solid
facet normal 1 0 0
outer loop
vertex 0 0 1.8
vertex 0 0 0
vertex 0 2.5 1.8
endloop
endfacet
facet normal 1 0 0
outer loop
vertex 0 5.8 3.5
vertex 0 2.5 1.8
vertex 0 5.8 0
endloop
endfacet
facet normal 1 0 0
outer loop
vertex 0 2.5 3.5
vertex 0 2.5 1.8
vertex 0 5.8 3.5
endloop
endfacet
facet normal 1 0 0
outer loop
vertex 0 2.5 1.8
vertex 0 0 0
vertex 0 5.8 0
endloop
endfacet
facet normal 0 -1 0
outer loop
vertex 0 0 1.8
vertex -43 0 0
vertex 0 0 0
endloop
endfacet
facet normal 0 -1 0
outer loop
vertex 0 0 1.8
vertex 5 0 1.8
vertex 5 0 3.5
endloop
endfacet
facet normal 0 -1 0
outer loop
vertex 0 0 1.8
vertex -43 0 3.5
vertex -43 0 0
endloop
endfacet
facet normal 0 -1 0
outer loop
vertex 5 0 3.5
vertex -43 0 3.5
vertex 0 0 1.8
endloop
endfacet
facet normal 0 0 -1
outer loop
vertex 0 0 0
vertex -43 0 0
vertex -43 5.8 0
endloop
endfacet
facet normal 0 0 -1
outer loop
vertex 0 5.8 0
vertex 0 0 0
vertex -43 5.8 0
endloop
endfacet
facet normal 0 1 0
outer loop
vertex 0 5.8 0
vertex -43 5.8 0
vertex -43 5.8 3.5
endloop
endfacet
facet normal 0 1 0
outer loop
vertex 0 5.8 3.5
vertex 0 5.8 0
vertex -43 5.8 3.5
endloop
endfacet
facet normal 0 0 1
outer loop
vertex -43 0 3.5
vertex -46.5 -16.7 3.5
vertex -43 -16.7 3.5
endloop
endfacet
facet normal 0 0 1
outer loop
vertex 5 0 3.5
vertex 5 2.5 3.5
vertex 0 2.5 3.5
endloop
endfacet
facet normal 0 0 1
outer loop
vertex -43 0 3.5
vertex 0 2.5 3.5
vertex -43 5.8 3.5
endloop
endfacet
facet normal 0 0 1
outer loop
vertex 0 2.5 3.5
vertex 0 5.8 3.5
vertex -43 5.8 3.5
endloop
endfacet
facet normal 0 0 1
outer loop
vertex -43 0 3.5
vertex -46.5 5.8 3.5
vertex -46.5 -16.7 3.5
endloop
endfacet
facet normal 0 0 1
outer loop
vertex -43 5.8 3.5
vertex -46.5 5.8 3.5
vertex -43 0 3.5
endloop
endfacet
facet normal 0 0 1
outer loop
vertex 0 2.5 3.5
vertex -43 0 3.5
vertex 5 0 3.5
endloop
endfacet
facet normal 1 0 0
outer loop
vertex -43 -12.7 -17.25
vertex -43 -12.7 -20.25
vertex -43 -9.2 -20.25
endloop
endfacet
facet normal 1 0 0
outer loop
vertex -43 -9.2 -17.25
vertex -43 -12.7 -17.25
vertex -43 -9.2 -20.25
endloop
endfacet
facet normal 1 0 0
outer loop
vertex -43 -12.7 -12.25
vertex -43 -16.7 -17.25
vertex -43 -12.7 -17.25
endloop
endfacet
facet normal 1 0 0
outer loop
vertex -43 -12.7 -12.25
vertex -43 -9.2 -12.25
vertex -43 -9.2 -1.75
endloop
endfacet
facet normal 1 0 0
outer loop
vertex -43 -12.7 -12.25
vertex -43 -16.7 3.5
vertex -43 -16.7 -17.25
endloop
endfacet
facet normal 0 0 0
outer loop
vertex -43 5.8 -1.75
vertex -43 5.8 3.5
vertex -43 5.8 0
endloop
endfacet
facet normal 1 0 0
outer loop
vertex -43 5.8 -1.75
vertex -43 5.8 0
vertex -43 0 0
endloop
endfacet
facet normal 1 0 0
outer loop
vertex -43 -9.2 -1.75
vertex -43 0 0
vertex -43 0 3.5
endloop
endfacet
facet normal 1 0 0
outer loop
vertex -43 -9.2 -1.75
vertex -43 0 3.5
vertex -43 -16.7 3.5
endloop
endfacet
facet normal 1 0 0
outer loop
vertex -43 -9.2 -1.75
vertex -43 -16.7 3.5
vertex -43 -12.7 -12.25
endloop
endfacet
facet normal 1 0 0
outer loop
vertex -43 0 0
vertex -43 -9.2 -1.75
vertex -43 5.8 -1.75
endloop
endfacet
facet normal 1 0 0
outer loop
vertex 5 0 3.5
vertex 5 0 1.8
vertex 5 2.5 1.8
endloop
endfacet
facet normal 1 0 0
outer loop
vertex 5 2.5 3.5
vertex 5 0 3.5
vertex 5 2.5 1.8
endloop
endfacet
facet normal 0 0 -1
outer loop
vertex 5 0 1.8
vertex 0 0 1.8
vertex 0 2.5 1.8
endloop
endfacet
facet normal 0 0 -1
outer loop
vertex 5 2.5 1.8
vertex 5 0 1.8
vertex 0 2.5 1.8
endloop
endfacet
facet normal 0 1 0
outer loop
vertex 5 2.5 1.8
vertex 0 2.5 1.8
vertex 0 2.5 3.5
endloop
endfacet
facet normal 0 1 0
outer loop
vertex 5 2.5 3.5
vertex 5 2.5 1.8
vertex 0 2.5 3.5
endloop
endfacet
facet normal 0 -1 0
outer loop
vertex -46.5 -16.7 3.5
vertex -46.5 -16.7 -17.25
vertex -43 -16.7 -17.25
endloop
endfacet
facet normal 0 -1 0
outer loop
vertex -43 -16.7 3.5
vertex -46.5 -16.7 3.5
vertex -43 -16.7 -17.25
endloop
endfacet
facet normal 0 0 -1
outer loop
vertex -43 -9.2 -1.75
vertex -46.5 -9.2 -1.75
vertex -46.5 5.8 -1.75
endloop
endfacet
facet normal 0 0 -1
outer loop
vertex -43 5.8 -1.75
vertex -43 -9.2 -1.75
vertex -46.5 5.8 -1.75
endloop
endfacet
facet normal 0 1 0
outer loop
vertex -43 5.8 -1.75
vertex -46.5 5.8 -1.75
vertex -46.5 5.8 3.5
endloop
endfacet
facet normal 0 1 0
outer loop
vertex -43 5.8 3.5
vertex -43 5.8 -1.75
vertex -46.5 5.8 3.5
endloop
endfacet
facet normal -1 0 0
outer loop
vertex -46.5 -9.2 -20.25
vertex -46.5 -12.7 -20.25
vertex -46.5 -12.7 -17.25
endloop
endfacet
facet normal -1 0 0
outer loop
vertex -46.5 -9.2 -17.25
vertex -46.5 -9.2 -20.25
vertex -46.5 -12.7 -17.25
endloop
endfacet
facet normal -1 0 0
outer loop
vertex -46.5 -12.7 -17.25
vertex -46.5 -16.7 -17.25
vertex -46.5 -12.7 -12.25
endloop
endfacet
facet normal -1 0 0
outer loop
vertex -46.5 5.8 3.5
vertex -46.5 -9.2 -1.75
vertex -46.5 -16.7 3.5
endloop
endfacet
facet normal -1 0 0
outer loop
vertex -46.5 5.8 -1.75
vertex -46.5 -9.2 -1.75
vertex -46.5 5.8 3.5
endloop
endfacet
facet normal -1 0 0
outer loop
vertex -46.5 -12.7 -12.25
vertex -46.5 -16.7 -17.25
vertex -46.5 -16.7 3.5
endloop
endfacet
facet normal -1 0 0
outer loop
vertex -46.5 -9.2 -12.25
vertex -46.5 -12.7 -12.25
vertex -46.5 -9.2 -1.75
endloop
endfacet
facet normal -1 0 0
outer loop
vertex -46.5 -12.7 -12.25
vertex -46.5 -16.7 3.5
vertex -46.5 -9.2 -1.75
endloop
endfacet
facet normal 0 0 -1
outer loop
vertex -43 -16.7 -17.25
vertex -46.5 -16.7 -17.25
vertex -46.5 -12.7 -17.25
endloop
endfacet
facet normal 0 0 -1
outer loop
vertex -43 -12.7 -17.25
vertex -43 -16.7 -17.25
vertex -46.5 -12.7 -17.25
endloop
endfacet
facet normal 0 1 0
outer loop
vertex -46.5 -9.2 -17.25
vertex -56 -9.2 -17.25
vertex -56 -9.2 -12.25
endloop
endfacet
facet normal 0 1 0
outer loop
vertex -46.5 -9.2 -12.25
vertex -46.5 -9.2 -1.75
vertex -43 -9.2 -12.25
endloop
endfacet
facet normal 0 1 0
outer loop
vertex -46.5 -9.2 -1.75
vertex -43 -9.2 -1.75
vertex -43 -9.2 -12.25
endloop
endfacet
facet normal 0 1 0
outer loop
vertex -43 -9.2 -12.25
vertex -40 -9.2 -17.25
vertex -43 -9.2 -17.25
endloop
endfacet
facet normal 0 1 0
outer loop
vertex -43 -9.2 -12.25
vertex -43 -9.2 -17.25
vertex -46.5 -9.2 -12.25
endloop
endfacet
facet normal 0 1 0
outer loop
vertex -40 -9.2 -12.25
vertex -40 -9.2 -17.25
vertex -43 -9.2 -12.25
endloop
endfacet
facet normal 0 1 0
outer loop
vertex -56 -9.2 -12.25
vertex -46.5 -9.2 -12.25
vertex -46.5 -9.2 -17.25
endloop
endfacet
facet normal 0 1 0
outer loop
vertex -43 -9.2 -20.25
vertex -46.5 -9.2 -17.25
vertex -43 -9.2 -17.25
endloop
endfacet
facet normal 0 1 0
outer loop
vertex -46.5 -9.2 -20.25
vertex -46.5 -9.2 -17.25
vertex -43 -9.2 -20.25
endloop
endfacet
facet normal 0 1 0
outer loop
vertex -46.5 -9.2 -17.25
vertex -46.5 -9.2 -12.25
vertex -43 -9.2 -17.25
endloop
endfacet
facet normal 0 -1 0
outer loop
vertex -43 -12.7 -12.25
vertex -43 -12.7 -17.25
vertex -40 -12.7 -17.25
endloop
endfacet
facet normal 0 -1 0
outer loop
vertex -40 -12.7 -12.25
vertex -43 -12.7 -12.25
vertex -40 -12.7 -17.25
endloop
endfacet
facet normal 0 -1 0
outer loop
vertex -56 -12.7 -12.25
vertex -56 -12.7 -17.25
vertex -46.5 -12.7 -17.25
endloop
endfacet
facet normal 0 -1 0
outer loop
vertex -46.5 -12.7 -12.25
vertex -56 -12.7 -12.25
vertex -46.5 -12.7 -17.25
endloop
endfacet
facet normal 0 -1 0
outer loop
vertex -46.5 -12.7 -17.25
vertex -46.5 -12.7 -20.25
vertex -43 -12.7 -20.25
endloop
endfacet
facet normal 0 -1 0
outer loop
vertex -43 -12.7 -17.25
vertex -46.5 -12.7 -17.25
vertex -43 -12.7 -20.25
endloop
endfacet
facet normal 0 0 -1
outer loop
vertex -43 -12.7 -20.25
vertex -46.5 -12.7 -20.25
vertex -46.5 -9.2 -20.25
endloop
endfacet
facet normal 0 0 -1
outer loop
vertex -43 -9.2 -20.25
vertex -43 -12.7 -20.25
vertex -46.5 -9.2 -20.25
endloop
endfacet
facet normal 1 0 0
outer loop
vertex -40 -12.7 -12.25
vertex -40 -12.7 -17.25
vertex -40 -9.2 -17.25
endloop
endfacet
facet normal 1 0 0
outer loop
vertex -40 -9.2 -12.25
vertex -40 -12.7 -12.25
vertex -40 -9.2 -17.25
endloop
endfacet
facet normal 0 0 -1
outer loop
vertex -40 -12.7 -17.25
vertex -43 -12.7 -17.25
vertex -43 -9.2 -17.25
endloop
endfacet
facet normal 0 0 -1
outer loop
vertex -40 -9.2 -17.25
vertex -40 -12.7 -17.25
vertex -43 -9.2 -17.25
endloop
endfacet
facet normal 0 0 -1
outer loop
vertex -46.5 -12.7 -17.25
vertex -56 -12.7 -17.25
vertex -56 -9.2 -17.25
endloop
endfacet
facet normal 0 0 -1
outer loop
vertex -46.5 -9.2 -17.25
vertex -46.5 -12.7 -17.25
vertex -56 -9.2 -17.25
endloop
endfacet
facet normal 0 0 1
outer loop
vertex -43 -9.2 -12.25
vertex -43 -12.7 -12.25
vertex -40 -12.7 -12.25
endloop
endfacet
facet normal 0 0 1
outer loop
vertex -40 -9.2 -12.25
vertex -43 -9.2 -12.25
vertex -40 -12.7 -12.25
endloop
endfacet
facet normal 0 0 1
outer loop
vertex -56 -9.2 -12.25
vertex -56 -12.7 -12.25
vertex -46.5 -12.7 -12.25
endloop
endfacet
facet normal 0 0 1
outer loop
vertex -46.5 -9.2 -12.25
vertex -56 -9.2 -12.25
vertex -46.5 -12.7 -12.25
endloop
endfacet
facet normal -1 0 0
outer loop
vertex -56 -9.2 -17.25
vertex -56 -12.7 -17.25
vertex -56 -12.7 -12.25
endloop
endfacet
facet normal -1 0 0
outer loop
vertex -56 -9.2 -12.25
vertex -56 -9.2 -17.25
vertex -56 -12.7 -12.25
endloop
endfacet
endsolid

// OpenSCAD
color("black") mirror([1,0,0]) union() {
    cube([43, 5.8, 3.5]);
    translate([-5, 0, 1.8]) cube([5, 2.5, 1.7]);
    translate([43, -16.7, -1.75]) cube([3.5,22.5,5.25]);
    translate([43,-16.7,-17.25]) cube([3.5,7.5,15.5]);
    translate([43,-12.7,-20.25]) cube([3.5,3.5,18.5]);
    translate([40,-12.7,-17.25]) cube([16,3.5,5]);
}
